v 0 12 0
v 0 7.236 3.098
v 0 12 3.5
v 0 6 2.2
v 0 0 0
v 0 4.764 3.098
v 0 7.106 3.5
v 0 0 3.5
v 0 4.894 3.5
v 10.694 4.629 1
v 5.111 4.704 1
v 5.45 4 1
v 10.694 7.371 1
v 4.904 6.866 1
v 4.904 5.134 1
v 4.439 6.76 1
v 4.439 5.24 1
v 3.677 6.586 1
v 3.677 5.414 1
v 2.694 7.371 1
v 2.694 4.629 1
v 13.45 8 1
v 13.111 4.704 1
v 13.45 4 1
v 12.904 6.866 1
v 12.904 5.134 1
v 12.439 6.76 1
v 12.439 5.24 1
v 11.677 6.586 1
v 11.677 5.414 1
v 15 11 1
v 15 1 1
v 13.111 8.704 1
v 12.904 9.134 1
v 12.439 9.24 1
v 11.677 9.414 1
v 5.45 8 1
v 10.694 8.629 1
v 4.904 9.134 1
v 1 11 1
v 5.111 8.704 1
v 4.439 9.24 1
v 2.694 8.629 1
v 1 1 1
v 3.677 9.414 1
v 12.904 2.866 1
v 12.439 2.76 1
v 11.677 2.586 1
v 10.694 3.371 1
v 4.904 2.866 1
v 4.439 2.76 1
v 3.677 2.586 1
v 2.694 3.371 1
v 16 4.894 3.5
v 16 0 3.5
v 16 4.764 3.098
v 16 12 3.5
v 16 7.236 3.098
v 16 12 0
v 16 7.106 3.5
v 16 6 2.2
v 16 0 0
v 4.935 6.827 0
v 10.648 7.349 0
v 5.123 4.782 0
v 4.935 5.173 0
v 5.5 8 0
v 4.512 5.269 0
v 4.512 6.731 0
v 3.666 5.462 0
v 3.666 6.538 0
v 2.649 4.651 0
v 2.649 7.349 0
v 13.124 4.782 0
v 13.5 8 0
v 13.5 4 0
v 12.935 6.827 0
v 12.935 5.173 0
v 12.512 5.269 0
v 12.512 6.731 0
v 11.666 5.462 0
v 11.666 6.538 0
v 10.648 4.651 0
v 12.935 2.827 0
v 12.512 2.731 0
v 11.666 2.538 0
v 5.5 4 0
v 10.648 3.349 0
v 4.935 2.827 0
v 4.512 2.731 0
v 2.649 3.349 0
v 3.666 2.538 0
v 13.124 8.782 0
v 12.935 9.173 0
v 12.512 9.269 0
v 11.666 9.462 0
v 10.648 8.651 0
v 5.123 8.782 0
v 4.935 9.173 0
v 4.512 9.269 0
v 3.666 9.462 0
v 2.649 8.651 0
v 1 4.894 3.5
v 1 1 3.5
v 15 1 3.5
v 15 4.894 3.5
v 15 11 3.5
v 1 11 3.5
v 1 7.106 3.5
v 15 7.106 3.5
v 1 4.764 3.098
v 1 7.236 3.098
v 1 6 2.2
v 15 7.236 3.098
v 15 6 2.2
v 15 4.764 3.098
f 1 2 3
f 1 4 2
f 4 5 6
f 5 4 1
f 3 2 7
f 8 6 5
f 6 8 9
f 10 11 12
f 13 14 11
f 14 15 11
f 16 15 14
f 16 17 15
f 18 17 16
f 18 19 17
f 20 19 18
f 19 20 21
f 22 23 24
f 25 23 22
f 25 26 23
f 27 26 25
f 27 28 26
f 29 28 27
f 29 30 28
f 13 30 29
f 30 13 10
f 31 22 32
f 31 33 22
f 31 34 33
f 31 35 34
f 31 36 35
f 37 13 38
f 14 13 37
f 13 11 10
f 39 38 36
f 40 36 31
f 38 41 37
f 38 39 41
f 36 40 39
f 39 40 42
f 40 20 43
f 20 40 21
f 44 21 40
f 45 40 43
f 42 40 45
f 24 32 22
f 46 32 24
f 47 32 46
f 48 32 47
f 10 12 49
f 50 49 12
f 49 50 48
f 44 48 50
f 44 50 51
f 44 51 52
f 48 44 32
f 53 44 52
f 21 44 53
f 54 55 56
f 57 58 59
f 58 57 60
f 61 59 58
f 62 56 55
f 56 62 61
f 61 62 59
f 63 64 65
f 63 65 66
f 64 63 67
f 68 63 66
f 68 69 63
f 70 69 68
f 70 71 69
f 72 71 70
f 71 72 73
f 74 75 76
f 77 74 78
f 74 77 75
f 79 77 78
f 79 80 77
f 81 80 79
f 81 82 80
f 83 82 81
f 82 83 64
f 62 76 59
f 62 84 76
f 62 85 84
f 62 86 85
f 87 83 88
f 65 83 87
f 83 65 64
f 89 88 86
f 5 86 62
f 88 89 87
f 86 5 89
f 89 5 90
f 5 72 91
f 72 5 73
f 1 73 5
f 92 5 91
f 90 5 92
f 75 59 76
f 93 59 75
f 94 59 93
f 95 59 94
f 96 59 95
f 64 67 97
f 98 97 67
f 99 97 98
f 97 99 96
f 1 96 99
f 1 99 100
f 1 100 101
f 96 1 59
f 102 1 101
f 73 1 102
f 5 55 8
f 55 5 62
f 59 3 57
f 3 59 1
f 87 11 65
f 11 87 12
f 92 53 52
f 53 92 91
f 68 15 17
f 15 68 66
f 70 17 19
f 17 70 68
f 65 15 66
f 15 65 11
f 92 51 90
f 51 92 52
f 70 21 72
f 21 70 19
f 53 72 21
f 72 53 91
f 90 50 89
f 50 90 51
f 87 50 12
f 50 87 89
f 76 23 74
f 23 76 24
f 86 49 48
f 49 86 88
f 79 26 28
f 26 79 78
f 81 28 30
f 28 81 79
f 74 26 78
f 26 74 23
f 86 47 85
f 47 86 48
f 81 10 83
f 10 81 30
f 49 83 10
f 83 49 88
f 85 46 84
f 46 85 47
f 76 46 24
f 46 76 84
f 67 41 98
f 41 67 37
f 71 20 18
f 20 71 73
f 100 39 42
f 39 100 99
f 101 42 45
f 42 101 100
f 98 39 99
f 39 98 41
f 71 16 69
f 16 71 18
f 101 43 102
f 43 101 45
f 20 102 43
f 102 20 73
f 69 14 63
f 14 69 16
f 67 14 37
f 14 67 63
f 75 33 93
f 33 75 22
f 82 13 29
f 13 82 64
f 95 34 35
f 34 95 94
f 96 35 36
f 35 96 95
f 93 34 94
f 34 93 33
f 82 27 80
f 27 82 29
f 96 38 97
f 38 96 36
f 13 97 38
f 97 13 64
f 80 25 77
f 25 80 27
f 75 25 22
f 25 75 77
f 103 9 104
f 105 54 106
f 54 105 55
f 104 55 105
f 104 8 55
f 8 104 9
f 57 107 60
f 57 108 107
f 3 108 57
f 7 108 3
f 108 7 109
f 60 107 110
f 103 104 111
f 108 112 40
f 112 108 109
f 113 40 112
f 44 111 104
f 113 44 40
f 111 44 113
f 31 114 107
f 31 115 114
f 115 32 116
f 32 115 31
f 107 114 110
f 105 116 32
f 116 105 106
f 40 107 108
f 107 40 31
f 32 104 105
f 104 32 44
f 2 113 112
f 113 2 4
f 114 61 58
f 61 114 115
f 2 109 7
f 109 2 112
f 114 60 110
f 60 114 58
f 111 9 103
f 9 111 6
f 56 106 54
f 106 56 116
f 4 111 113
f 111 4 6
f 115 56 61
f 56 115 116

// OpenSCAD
/* cap_ledplate */

// 2018/6/5  16:09   usui
t=1;
h=16;
w=12;


difference() {
    cube([h,w,t]);
    
    // plate circle
    translate([3+t  ,3+t  ,0])   cylinder(20,2,center=true);
    translate([h-3-t,3+t  ,0])   cylinder(20,2,center=true);
    translate([3+t  ,w-3-t,0])   cylinder(20,2,center=true);
    translate([h-3-t,w-3-t,0])   cylinder(20,2,center=true);    
};

//wall
wt=t+2.5;

module wall(h,w,t){
    translate([0,0,0])  cube([t,w,wt]);
    translate([h-t,0,0])  cube([t,w,wt]);
    translate([0,w-t,0])  cube([h,t,wt]);
    translate([0,0,0])  cube([h,t,wt]);
};

difference() {
    wall(h,w,t);
    rotate([0,90,0])
    translate([-3.5,w/2,-10])
    cylinder(50,1.3,1.3);
}
